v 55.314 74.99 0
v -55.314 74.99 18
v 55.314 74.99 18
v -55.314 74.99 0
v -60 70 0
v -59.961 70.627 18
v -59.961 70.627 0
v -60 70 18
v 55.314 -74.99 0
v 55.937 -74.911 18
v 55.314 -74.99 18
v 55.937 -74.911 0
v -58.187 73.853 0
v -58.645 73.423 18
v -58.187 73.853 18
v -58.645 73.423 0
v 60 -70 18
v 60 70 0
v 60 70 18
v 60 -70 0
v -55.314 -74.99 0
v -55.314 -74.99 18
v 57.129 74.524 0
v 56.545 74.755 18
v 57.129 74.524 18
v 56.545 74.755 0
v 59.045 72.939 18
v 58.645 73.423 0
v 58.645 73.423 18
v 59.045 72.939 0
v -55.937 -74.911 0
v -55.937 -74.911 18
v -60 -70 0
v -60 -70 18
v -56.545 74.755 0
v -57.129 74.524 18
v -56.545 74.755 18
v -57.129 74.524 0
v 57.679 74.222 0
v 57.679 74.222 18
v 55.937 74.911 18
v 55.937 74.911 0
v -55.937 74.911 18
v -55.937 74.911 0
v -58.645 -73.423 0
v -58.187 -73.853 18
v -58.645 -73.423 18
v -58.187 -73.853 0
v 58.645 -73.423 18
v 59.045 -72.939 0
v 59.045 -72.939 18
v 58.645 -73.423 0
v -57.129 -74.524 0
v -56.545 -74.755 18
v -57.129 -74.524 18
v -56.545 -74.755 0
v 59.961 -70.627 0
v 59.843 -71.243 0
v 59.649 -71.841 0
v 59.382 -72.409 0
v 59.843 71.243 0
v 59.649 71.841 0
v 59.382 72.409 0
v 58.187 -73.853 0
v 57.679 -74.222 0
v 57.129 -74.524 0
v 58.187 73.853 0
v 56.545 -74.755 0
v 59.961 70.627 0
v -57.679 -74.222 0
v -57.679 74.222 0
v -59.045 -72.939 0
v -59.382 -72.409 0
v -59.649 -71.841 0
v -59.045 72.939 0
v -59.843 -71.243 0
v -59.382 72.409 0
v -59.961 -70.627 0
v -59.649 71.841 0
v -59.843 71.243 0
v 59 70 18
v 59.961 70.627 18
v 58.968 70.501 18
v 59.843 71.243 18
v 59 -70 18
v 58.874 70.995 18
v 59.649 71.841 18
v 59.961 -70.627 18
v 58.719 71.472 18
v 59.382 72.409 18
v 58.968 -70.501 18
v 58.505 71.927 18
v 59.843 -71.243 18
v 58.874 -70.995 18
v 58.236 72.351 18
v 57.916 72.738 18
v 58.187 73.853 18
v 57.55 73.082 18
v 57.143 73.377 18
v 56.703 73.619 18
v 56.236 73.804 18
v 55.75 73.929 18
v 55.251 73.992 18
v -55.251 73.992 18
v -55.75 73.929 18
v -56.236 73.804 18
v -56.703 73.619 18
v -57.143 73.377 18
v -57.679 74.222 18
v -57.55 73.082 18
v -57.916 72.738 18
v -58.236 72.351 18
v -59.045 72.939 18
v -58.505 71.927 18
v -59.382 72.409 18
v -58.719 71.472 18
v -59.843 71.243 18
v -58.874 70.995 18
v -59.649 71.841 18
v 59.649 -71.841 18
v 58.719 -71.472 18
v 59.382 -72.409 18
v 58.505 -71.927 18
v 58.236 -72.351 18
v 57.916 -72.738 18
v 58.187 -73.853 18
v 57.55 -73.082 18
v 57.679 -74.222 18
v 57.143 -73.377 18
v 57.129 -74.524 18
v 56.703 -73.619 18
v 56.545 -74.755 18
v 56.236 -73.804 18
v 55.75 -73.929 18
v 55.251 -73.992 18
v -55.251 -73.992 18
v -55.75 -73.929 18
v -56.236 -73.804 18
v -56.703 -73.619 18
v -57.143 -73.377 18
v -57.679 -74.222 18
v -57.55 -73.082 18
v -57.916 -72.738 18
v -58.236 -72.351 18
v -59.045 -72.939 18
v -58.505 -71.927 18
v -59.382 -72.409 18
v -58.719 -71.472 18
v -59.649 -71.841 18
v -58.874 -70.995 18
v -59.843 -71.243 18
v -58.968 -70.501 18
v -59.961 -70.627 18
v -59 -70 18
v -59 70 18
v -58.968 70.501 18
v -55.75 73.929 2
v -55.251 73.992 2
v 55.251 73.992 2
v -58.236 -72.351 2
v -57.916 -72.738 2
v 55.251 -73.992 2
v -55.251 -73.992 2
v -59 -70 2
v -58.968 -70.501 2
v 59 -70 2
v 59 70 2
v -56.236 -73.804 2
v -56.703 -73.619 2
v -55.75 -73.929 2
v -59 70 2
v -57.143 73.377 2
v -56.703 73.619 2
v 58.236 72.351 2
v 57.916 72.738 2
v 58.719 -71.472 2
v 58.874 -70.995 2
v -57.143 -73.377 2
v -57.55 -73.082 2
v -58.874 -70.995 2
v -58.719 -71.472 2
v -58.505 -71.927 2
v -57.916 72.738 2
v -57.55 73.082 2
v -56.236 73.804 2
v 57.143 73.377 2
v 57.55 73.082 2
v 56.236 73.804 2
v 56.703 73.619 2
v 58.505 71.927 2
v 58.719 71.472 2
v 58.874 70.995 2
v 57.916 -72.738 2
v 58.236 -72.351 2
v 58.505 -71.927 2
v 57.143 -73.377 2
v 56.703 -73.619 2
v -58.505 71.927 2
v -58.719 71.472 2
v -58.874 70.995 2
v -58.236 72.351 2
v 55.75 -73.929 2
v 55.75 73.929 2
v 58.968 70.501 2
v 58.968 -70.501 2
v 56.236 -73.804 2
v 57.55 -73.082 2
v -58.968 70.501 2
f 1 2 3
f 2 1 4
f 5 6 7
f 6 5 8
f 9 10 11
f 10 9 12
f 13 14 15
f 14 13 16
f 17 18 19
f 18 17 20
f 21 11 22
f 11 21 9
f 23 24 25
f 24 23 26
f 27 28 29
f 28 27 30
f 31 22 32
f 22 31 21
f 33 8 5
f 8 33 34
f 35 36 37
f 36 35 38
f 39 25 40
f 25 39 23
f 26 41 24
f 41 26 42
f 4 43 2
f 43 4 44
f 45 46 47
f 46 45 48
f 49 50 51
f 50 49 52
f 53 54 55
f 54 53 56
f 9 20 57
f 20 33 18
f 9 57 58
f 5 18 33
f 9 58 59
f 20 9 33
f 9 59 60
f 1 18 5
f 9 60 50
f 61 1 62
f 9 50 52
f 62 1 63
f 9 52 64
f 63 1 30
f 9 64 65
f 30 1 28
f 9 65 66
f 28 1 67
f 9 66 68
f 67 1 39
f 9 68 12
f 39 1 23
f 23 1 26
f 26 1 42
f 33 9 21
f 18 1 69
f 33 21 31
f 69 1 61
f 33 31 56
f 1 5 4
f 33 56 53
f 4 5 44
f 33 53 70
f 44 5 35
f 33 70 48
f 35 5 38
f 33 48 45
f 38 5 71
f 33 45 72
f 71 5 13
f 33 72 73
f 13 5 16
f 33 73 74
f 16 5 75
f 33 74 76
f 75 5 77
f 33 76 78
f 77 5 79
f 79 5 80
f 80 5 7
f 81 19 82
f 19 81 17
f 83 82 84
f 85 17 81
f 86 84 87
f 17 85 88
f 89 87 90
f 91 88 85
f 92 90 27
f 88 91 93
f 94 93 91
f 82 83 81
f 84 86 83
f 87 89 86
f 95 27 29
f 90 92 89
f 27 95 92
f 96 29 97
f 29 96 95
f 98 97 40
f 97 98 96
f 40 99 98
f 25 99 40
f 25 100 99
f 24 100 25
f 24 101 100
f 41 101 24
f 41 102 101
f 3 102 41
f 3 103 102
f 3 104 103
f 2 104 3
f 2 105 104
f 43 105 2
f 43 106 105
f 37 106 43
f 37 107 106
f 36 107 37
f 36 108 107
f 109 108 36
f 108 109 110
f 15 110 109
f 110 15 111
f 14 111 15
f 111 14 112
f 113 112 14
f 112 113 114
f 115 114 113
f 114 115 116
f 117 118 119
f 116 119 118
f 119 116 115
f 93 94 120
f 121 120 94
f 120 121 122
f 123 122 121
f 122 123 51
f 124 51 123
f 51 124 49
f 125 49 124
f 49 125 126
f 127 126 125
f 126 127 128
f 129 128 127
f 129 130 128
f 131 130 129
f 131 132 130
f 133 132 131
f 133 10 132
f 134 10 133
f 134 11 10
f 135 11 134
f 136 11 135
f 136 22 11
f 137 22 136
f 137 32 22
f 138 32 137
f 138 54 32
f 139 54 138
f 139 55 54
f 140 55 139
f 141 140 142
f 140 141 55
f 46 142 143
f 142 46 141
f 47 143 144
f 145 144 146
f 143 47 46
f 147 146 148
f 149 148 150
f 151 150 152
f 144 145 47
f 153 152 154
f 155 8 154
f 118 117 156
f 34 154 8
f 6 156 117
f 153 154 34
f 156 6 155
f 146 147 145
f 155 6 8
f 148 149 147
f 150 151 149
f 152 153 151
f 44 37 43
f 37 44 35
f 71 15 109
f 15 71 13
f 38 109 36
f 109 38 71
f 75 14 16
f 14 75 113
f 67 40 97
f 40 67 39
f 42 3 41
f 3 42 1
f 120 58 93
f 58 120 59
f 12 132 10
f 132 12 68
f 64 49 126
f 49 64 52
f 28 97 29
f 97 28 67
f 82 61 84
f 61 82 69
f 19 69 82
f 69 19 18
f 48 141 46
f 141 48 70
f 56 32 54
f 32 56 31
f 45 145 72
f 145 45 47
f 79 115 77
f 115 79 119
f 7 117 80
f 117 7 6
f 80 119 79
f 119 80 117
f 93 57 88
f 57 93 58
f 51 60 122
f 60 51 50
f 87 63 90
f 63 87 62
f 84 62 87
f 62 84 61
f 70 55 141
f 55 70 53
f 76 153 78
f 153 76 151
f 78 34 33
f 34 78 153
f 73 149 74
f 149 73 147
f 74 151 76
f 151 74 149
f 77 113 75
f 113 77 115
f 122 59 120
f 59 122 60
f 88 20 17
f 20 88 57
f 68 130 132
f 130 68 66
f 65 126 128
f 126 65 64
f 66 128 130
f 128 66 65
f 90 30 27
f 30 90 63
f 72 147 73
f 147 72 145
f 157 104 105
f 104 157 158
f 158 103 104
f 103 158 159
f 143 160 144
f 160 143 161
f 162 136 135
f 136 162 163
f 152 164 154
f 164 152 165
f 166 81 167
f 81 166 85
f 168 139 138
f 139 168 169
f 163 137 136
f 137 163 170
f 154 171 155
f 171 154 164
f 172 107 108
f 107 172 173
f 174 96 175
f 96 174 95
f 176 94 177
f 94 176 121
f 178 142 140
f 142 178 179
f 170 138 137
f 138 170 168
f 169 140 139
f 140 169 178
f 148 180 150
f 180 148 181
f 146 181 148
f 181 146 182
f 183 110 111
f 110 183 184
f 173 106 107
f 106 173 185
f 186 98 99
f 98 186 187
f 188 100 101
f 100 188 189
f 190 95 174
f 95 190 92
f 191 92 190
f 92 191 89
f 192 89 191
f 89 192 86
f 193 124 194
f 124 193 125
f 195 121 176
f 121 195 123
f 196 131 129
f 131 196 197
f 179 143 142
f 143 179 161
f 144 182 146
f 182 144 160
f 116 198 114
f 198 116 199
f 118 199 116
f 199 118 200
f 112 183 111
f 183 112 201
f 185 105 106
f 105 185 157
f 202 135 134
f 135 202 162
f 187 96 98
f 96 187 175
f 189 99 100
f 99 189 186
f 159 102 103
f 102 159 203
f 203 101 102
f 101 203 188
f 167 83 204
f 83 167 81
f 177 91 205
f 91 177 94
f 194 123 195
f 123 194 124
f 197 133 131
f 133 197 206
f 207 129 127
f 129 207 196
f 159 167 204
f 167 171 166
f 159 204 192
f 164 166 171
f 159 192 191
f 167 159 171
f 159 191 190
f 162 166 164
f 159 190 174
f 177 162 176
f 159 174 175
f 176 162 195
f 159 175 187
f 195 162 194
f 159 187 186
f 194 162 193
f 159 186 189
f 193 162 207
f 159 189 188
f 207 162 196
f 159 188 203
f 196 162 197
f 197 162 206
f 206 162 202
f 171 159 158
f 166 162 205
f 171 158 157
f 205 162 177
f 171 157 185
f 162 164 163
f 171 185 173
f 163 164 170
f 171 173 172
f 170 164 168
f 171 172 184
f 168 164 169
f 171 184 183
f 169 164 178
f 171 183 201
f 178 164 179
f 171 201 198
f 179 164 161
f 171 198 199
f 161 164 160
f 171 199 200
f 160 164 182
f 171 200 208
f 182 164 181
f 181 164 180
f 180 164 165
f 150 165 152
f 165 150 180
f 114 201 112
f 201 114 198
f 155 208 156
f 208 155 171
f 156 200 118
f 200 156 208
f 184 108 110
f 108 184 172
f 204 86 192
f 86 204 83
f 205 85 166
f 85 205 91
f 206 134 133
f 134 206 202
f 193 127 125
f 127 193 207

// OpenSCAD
$fn = 50;


difference() {
	union() {
		hull() {
			translate(v = [-55.0000000000, 70.0000000000, 0]) {
				cylinder(h = 18, r = 5);
			}
			translate(v = [55.0000000000, 70.0000000000, 0]) {
				cylinder(h = 18, r = 5);
			}
			translate(v = [-55.0000000000, -70.0000000000, 0]) {
				cylinder(h = 18, r = 5);
			}
			translate(v = [55.0000000000, -70.0000000000, 0]) {
				cylinder(h = 18, r = 5);
			}
		}
	}
	union() {
		translate(v = [0, 0, 2]) {
			hull() {
				translate(v = [-55.0000000000, 70.0000000000, 0]) {
					cylinder(h = 16, r = 4);
				}
				translate(v = [55.0000000000, 70.0000000000, 0]) {
					cylinder(h = 16, r = 4);
				}
				translate(v = [-55.0000000000, -70.0000000000, 0]) {
					cylinder(h = 16, r = 4);
				}
				translate(v = [55.0000000000, -70.0000000000, 0]) {
					cylinder(h = 16, r = 4);
				}
			}
		}
	}
}
